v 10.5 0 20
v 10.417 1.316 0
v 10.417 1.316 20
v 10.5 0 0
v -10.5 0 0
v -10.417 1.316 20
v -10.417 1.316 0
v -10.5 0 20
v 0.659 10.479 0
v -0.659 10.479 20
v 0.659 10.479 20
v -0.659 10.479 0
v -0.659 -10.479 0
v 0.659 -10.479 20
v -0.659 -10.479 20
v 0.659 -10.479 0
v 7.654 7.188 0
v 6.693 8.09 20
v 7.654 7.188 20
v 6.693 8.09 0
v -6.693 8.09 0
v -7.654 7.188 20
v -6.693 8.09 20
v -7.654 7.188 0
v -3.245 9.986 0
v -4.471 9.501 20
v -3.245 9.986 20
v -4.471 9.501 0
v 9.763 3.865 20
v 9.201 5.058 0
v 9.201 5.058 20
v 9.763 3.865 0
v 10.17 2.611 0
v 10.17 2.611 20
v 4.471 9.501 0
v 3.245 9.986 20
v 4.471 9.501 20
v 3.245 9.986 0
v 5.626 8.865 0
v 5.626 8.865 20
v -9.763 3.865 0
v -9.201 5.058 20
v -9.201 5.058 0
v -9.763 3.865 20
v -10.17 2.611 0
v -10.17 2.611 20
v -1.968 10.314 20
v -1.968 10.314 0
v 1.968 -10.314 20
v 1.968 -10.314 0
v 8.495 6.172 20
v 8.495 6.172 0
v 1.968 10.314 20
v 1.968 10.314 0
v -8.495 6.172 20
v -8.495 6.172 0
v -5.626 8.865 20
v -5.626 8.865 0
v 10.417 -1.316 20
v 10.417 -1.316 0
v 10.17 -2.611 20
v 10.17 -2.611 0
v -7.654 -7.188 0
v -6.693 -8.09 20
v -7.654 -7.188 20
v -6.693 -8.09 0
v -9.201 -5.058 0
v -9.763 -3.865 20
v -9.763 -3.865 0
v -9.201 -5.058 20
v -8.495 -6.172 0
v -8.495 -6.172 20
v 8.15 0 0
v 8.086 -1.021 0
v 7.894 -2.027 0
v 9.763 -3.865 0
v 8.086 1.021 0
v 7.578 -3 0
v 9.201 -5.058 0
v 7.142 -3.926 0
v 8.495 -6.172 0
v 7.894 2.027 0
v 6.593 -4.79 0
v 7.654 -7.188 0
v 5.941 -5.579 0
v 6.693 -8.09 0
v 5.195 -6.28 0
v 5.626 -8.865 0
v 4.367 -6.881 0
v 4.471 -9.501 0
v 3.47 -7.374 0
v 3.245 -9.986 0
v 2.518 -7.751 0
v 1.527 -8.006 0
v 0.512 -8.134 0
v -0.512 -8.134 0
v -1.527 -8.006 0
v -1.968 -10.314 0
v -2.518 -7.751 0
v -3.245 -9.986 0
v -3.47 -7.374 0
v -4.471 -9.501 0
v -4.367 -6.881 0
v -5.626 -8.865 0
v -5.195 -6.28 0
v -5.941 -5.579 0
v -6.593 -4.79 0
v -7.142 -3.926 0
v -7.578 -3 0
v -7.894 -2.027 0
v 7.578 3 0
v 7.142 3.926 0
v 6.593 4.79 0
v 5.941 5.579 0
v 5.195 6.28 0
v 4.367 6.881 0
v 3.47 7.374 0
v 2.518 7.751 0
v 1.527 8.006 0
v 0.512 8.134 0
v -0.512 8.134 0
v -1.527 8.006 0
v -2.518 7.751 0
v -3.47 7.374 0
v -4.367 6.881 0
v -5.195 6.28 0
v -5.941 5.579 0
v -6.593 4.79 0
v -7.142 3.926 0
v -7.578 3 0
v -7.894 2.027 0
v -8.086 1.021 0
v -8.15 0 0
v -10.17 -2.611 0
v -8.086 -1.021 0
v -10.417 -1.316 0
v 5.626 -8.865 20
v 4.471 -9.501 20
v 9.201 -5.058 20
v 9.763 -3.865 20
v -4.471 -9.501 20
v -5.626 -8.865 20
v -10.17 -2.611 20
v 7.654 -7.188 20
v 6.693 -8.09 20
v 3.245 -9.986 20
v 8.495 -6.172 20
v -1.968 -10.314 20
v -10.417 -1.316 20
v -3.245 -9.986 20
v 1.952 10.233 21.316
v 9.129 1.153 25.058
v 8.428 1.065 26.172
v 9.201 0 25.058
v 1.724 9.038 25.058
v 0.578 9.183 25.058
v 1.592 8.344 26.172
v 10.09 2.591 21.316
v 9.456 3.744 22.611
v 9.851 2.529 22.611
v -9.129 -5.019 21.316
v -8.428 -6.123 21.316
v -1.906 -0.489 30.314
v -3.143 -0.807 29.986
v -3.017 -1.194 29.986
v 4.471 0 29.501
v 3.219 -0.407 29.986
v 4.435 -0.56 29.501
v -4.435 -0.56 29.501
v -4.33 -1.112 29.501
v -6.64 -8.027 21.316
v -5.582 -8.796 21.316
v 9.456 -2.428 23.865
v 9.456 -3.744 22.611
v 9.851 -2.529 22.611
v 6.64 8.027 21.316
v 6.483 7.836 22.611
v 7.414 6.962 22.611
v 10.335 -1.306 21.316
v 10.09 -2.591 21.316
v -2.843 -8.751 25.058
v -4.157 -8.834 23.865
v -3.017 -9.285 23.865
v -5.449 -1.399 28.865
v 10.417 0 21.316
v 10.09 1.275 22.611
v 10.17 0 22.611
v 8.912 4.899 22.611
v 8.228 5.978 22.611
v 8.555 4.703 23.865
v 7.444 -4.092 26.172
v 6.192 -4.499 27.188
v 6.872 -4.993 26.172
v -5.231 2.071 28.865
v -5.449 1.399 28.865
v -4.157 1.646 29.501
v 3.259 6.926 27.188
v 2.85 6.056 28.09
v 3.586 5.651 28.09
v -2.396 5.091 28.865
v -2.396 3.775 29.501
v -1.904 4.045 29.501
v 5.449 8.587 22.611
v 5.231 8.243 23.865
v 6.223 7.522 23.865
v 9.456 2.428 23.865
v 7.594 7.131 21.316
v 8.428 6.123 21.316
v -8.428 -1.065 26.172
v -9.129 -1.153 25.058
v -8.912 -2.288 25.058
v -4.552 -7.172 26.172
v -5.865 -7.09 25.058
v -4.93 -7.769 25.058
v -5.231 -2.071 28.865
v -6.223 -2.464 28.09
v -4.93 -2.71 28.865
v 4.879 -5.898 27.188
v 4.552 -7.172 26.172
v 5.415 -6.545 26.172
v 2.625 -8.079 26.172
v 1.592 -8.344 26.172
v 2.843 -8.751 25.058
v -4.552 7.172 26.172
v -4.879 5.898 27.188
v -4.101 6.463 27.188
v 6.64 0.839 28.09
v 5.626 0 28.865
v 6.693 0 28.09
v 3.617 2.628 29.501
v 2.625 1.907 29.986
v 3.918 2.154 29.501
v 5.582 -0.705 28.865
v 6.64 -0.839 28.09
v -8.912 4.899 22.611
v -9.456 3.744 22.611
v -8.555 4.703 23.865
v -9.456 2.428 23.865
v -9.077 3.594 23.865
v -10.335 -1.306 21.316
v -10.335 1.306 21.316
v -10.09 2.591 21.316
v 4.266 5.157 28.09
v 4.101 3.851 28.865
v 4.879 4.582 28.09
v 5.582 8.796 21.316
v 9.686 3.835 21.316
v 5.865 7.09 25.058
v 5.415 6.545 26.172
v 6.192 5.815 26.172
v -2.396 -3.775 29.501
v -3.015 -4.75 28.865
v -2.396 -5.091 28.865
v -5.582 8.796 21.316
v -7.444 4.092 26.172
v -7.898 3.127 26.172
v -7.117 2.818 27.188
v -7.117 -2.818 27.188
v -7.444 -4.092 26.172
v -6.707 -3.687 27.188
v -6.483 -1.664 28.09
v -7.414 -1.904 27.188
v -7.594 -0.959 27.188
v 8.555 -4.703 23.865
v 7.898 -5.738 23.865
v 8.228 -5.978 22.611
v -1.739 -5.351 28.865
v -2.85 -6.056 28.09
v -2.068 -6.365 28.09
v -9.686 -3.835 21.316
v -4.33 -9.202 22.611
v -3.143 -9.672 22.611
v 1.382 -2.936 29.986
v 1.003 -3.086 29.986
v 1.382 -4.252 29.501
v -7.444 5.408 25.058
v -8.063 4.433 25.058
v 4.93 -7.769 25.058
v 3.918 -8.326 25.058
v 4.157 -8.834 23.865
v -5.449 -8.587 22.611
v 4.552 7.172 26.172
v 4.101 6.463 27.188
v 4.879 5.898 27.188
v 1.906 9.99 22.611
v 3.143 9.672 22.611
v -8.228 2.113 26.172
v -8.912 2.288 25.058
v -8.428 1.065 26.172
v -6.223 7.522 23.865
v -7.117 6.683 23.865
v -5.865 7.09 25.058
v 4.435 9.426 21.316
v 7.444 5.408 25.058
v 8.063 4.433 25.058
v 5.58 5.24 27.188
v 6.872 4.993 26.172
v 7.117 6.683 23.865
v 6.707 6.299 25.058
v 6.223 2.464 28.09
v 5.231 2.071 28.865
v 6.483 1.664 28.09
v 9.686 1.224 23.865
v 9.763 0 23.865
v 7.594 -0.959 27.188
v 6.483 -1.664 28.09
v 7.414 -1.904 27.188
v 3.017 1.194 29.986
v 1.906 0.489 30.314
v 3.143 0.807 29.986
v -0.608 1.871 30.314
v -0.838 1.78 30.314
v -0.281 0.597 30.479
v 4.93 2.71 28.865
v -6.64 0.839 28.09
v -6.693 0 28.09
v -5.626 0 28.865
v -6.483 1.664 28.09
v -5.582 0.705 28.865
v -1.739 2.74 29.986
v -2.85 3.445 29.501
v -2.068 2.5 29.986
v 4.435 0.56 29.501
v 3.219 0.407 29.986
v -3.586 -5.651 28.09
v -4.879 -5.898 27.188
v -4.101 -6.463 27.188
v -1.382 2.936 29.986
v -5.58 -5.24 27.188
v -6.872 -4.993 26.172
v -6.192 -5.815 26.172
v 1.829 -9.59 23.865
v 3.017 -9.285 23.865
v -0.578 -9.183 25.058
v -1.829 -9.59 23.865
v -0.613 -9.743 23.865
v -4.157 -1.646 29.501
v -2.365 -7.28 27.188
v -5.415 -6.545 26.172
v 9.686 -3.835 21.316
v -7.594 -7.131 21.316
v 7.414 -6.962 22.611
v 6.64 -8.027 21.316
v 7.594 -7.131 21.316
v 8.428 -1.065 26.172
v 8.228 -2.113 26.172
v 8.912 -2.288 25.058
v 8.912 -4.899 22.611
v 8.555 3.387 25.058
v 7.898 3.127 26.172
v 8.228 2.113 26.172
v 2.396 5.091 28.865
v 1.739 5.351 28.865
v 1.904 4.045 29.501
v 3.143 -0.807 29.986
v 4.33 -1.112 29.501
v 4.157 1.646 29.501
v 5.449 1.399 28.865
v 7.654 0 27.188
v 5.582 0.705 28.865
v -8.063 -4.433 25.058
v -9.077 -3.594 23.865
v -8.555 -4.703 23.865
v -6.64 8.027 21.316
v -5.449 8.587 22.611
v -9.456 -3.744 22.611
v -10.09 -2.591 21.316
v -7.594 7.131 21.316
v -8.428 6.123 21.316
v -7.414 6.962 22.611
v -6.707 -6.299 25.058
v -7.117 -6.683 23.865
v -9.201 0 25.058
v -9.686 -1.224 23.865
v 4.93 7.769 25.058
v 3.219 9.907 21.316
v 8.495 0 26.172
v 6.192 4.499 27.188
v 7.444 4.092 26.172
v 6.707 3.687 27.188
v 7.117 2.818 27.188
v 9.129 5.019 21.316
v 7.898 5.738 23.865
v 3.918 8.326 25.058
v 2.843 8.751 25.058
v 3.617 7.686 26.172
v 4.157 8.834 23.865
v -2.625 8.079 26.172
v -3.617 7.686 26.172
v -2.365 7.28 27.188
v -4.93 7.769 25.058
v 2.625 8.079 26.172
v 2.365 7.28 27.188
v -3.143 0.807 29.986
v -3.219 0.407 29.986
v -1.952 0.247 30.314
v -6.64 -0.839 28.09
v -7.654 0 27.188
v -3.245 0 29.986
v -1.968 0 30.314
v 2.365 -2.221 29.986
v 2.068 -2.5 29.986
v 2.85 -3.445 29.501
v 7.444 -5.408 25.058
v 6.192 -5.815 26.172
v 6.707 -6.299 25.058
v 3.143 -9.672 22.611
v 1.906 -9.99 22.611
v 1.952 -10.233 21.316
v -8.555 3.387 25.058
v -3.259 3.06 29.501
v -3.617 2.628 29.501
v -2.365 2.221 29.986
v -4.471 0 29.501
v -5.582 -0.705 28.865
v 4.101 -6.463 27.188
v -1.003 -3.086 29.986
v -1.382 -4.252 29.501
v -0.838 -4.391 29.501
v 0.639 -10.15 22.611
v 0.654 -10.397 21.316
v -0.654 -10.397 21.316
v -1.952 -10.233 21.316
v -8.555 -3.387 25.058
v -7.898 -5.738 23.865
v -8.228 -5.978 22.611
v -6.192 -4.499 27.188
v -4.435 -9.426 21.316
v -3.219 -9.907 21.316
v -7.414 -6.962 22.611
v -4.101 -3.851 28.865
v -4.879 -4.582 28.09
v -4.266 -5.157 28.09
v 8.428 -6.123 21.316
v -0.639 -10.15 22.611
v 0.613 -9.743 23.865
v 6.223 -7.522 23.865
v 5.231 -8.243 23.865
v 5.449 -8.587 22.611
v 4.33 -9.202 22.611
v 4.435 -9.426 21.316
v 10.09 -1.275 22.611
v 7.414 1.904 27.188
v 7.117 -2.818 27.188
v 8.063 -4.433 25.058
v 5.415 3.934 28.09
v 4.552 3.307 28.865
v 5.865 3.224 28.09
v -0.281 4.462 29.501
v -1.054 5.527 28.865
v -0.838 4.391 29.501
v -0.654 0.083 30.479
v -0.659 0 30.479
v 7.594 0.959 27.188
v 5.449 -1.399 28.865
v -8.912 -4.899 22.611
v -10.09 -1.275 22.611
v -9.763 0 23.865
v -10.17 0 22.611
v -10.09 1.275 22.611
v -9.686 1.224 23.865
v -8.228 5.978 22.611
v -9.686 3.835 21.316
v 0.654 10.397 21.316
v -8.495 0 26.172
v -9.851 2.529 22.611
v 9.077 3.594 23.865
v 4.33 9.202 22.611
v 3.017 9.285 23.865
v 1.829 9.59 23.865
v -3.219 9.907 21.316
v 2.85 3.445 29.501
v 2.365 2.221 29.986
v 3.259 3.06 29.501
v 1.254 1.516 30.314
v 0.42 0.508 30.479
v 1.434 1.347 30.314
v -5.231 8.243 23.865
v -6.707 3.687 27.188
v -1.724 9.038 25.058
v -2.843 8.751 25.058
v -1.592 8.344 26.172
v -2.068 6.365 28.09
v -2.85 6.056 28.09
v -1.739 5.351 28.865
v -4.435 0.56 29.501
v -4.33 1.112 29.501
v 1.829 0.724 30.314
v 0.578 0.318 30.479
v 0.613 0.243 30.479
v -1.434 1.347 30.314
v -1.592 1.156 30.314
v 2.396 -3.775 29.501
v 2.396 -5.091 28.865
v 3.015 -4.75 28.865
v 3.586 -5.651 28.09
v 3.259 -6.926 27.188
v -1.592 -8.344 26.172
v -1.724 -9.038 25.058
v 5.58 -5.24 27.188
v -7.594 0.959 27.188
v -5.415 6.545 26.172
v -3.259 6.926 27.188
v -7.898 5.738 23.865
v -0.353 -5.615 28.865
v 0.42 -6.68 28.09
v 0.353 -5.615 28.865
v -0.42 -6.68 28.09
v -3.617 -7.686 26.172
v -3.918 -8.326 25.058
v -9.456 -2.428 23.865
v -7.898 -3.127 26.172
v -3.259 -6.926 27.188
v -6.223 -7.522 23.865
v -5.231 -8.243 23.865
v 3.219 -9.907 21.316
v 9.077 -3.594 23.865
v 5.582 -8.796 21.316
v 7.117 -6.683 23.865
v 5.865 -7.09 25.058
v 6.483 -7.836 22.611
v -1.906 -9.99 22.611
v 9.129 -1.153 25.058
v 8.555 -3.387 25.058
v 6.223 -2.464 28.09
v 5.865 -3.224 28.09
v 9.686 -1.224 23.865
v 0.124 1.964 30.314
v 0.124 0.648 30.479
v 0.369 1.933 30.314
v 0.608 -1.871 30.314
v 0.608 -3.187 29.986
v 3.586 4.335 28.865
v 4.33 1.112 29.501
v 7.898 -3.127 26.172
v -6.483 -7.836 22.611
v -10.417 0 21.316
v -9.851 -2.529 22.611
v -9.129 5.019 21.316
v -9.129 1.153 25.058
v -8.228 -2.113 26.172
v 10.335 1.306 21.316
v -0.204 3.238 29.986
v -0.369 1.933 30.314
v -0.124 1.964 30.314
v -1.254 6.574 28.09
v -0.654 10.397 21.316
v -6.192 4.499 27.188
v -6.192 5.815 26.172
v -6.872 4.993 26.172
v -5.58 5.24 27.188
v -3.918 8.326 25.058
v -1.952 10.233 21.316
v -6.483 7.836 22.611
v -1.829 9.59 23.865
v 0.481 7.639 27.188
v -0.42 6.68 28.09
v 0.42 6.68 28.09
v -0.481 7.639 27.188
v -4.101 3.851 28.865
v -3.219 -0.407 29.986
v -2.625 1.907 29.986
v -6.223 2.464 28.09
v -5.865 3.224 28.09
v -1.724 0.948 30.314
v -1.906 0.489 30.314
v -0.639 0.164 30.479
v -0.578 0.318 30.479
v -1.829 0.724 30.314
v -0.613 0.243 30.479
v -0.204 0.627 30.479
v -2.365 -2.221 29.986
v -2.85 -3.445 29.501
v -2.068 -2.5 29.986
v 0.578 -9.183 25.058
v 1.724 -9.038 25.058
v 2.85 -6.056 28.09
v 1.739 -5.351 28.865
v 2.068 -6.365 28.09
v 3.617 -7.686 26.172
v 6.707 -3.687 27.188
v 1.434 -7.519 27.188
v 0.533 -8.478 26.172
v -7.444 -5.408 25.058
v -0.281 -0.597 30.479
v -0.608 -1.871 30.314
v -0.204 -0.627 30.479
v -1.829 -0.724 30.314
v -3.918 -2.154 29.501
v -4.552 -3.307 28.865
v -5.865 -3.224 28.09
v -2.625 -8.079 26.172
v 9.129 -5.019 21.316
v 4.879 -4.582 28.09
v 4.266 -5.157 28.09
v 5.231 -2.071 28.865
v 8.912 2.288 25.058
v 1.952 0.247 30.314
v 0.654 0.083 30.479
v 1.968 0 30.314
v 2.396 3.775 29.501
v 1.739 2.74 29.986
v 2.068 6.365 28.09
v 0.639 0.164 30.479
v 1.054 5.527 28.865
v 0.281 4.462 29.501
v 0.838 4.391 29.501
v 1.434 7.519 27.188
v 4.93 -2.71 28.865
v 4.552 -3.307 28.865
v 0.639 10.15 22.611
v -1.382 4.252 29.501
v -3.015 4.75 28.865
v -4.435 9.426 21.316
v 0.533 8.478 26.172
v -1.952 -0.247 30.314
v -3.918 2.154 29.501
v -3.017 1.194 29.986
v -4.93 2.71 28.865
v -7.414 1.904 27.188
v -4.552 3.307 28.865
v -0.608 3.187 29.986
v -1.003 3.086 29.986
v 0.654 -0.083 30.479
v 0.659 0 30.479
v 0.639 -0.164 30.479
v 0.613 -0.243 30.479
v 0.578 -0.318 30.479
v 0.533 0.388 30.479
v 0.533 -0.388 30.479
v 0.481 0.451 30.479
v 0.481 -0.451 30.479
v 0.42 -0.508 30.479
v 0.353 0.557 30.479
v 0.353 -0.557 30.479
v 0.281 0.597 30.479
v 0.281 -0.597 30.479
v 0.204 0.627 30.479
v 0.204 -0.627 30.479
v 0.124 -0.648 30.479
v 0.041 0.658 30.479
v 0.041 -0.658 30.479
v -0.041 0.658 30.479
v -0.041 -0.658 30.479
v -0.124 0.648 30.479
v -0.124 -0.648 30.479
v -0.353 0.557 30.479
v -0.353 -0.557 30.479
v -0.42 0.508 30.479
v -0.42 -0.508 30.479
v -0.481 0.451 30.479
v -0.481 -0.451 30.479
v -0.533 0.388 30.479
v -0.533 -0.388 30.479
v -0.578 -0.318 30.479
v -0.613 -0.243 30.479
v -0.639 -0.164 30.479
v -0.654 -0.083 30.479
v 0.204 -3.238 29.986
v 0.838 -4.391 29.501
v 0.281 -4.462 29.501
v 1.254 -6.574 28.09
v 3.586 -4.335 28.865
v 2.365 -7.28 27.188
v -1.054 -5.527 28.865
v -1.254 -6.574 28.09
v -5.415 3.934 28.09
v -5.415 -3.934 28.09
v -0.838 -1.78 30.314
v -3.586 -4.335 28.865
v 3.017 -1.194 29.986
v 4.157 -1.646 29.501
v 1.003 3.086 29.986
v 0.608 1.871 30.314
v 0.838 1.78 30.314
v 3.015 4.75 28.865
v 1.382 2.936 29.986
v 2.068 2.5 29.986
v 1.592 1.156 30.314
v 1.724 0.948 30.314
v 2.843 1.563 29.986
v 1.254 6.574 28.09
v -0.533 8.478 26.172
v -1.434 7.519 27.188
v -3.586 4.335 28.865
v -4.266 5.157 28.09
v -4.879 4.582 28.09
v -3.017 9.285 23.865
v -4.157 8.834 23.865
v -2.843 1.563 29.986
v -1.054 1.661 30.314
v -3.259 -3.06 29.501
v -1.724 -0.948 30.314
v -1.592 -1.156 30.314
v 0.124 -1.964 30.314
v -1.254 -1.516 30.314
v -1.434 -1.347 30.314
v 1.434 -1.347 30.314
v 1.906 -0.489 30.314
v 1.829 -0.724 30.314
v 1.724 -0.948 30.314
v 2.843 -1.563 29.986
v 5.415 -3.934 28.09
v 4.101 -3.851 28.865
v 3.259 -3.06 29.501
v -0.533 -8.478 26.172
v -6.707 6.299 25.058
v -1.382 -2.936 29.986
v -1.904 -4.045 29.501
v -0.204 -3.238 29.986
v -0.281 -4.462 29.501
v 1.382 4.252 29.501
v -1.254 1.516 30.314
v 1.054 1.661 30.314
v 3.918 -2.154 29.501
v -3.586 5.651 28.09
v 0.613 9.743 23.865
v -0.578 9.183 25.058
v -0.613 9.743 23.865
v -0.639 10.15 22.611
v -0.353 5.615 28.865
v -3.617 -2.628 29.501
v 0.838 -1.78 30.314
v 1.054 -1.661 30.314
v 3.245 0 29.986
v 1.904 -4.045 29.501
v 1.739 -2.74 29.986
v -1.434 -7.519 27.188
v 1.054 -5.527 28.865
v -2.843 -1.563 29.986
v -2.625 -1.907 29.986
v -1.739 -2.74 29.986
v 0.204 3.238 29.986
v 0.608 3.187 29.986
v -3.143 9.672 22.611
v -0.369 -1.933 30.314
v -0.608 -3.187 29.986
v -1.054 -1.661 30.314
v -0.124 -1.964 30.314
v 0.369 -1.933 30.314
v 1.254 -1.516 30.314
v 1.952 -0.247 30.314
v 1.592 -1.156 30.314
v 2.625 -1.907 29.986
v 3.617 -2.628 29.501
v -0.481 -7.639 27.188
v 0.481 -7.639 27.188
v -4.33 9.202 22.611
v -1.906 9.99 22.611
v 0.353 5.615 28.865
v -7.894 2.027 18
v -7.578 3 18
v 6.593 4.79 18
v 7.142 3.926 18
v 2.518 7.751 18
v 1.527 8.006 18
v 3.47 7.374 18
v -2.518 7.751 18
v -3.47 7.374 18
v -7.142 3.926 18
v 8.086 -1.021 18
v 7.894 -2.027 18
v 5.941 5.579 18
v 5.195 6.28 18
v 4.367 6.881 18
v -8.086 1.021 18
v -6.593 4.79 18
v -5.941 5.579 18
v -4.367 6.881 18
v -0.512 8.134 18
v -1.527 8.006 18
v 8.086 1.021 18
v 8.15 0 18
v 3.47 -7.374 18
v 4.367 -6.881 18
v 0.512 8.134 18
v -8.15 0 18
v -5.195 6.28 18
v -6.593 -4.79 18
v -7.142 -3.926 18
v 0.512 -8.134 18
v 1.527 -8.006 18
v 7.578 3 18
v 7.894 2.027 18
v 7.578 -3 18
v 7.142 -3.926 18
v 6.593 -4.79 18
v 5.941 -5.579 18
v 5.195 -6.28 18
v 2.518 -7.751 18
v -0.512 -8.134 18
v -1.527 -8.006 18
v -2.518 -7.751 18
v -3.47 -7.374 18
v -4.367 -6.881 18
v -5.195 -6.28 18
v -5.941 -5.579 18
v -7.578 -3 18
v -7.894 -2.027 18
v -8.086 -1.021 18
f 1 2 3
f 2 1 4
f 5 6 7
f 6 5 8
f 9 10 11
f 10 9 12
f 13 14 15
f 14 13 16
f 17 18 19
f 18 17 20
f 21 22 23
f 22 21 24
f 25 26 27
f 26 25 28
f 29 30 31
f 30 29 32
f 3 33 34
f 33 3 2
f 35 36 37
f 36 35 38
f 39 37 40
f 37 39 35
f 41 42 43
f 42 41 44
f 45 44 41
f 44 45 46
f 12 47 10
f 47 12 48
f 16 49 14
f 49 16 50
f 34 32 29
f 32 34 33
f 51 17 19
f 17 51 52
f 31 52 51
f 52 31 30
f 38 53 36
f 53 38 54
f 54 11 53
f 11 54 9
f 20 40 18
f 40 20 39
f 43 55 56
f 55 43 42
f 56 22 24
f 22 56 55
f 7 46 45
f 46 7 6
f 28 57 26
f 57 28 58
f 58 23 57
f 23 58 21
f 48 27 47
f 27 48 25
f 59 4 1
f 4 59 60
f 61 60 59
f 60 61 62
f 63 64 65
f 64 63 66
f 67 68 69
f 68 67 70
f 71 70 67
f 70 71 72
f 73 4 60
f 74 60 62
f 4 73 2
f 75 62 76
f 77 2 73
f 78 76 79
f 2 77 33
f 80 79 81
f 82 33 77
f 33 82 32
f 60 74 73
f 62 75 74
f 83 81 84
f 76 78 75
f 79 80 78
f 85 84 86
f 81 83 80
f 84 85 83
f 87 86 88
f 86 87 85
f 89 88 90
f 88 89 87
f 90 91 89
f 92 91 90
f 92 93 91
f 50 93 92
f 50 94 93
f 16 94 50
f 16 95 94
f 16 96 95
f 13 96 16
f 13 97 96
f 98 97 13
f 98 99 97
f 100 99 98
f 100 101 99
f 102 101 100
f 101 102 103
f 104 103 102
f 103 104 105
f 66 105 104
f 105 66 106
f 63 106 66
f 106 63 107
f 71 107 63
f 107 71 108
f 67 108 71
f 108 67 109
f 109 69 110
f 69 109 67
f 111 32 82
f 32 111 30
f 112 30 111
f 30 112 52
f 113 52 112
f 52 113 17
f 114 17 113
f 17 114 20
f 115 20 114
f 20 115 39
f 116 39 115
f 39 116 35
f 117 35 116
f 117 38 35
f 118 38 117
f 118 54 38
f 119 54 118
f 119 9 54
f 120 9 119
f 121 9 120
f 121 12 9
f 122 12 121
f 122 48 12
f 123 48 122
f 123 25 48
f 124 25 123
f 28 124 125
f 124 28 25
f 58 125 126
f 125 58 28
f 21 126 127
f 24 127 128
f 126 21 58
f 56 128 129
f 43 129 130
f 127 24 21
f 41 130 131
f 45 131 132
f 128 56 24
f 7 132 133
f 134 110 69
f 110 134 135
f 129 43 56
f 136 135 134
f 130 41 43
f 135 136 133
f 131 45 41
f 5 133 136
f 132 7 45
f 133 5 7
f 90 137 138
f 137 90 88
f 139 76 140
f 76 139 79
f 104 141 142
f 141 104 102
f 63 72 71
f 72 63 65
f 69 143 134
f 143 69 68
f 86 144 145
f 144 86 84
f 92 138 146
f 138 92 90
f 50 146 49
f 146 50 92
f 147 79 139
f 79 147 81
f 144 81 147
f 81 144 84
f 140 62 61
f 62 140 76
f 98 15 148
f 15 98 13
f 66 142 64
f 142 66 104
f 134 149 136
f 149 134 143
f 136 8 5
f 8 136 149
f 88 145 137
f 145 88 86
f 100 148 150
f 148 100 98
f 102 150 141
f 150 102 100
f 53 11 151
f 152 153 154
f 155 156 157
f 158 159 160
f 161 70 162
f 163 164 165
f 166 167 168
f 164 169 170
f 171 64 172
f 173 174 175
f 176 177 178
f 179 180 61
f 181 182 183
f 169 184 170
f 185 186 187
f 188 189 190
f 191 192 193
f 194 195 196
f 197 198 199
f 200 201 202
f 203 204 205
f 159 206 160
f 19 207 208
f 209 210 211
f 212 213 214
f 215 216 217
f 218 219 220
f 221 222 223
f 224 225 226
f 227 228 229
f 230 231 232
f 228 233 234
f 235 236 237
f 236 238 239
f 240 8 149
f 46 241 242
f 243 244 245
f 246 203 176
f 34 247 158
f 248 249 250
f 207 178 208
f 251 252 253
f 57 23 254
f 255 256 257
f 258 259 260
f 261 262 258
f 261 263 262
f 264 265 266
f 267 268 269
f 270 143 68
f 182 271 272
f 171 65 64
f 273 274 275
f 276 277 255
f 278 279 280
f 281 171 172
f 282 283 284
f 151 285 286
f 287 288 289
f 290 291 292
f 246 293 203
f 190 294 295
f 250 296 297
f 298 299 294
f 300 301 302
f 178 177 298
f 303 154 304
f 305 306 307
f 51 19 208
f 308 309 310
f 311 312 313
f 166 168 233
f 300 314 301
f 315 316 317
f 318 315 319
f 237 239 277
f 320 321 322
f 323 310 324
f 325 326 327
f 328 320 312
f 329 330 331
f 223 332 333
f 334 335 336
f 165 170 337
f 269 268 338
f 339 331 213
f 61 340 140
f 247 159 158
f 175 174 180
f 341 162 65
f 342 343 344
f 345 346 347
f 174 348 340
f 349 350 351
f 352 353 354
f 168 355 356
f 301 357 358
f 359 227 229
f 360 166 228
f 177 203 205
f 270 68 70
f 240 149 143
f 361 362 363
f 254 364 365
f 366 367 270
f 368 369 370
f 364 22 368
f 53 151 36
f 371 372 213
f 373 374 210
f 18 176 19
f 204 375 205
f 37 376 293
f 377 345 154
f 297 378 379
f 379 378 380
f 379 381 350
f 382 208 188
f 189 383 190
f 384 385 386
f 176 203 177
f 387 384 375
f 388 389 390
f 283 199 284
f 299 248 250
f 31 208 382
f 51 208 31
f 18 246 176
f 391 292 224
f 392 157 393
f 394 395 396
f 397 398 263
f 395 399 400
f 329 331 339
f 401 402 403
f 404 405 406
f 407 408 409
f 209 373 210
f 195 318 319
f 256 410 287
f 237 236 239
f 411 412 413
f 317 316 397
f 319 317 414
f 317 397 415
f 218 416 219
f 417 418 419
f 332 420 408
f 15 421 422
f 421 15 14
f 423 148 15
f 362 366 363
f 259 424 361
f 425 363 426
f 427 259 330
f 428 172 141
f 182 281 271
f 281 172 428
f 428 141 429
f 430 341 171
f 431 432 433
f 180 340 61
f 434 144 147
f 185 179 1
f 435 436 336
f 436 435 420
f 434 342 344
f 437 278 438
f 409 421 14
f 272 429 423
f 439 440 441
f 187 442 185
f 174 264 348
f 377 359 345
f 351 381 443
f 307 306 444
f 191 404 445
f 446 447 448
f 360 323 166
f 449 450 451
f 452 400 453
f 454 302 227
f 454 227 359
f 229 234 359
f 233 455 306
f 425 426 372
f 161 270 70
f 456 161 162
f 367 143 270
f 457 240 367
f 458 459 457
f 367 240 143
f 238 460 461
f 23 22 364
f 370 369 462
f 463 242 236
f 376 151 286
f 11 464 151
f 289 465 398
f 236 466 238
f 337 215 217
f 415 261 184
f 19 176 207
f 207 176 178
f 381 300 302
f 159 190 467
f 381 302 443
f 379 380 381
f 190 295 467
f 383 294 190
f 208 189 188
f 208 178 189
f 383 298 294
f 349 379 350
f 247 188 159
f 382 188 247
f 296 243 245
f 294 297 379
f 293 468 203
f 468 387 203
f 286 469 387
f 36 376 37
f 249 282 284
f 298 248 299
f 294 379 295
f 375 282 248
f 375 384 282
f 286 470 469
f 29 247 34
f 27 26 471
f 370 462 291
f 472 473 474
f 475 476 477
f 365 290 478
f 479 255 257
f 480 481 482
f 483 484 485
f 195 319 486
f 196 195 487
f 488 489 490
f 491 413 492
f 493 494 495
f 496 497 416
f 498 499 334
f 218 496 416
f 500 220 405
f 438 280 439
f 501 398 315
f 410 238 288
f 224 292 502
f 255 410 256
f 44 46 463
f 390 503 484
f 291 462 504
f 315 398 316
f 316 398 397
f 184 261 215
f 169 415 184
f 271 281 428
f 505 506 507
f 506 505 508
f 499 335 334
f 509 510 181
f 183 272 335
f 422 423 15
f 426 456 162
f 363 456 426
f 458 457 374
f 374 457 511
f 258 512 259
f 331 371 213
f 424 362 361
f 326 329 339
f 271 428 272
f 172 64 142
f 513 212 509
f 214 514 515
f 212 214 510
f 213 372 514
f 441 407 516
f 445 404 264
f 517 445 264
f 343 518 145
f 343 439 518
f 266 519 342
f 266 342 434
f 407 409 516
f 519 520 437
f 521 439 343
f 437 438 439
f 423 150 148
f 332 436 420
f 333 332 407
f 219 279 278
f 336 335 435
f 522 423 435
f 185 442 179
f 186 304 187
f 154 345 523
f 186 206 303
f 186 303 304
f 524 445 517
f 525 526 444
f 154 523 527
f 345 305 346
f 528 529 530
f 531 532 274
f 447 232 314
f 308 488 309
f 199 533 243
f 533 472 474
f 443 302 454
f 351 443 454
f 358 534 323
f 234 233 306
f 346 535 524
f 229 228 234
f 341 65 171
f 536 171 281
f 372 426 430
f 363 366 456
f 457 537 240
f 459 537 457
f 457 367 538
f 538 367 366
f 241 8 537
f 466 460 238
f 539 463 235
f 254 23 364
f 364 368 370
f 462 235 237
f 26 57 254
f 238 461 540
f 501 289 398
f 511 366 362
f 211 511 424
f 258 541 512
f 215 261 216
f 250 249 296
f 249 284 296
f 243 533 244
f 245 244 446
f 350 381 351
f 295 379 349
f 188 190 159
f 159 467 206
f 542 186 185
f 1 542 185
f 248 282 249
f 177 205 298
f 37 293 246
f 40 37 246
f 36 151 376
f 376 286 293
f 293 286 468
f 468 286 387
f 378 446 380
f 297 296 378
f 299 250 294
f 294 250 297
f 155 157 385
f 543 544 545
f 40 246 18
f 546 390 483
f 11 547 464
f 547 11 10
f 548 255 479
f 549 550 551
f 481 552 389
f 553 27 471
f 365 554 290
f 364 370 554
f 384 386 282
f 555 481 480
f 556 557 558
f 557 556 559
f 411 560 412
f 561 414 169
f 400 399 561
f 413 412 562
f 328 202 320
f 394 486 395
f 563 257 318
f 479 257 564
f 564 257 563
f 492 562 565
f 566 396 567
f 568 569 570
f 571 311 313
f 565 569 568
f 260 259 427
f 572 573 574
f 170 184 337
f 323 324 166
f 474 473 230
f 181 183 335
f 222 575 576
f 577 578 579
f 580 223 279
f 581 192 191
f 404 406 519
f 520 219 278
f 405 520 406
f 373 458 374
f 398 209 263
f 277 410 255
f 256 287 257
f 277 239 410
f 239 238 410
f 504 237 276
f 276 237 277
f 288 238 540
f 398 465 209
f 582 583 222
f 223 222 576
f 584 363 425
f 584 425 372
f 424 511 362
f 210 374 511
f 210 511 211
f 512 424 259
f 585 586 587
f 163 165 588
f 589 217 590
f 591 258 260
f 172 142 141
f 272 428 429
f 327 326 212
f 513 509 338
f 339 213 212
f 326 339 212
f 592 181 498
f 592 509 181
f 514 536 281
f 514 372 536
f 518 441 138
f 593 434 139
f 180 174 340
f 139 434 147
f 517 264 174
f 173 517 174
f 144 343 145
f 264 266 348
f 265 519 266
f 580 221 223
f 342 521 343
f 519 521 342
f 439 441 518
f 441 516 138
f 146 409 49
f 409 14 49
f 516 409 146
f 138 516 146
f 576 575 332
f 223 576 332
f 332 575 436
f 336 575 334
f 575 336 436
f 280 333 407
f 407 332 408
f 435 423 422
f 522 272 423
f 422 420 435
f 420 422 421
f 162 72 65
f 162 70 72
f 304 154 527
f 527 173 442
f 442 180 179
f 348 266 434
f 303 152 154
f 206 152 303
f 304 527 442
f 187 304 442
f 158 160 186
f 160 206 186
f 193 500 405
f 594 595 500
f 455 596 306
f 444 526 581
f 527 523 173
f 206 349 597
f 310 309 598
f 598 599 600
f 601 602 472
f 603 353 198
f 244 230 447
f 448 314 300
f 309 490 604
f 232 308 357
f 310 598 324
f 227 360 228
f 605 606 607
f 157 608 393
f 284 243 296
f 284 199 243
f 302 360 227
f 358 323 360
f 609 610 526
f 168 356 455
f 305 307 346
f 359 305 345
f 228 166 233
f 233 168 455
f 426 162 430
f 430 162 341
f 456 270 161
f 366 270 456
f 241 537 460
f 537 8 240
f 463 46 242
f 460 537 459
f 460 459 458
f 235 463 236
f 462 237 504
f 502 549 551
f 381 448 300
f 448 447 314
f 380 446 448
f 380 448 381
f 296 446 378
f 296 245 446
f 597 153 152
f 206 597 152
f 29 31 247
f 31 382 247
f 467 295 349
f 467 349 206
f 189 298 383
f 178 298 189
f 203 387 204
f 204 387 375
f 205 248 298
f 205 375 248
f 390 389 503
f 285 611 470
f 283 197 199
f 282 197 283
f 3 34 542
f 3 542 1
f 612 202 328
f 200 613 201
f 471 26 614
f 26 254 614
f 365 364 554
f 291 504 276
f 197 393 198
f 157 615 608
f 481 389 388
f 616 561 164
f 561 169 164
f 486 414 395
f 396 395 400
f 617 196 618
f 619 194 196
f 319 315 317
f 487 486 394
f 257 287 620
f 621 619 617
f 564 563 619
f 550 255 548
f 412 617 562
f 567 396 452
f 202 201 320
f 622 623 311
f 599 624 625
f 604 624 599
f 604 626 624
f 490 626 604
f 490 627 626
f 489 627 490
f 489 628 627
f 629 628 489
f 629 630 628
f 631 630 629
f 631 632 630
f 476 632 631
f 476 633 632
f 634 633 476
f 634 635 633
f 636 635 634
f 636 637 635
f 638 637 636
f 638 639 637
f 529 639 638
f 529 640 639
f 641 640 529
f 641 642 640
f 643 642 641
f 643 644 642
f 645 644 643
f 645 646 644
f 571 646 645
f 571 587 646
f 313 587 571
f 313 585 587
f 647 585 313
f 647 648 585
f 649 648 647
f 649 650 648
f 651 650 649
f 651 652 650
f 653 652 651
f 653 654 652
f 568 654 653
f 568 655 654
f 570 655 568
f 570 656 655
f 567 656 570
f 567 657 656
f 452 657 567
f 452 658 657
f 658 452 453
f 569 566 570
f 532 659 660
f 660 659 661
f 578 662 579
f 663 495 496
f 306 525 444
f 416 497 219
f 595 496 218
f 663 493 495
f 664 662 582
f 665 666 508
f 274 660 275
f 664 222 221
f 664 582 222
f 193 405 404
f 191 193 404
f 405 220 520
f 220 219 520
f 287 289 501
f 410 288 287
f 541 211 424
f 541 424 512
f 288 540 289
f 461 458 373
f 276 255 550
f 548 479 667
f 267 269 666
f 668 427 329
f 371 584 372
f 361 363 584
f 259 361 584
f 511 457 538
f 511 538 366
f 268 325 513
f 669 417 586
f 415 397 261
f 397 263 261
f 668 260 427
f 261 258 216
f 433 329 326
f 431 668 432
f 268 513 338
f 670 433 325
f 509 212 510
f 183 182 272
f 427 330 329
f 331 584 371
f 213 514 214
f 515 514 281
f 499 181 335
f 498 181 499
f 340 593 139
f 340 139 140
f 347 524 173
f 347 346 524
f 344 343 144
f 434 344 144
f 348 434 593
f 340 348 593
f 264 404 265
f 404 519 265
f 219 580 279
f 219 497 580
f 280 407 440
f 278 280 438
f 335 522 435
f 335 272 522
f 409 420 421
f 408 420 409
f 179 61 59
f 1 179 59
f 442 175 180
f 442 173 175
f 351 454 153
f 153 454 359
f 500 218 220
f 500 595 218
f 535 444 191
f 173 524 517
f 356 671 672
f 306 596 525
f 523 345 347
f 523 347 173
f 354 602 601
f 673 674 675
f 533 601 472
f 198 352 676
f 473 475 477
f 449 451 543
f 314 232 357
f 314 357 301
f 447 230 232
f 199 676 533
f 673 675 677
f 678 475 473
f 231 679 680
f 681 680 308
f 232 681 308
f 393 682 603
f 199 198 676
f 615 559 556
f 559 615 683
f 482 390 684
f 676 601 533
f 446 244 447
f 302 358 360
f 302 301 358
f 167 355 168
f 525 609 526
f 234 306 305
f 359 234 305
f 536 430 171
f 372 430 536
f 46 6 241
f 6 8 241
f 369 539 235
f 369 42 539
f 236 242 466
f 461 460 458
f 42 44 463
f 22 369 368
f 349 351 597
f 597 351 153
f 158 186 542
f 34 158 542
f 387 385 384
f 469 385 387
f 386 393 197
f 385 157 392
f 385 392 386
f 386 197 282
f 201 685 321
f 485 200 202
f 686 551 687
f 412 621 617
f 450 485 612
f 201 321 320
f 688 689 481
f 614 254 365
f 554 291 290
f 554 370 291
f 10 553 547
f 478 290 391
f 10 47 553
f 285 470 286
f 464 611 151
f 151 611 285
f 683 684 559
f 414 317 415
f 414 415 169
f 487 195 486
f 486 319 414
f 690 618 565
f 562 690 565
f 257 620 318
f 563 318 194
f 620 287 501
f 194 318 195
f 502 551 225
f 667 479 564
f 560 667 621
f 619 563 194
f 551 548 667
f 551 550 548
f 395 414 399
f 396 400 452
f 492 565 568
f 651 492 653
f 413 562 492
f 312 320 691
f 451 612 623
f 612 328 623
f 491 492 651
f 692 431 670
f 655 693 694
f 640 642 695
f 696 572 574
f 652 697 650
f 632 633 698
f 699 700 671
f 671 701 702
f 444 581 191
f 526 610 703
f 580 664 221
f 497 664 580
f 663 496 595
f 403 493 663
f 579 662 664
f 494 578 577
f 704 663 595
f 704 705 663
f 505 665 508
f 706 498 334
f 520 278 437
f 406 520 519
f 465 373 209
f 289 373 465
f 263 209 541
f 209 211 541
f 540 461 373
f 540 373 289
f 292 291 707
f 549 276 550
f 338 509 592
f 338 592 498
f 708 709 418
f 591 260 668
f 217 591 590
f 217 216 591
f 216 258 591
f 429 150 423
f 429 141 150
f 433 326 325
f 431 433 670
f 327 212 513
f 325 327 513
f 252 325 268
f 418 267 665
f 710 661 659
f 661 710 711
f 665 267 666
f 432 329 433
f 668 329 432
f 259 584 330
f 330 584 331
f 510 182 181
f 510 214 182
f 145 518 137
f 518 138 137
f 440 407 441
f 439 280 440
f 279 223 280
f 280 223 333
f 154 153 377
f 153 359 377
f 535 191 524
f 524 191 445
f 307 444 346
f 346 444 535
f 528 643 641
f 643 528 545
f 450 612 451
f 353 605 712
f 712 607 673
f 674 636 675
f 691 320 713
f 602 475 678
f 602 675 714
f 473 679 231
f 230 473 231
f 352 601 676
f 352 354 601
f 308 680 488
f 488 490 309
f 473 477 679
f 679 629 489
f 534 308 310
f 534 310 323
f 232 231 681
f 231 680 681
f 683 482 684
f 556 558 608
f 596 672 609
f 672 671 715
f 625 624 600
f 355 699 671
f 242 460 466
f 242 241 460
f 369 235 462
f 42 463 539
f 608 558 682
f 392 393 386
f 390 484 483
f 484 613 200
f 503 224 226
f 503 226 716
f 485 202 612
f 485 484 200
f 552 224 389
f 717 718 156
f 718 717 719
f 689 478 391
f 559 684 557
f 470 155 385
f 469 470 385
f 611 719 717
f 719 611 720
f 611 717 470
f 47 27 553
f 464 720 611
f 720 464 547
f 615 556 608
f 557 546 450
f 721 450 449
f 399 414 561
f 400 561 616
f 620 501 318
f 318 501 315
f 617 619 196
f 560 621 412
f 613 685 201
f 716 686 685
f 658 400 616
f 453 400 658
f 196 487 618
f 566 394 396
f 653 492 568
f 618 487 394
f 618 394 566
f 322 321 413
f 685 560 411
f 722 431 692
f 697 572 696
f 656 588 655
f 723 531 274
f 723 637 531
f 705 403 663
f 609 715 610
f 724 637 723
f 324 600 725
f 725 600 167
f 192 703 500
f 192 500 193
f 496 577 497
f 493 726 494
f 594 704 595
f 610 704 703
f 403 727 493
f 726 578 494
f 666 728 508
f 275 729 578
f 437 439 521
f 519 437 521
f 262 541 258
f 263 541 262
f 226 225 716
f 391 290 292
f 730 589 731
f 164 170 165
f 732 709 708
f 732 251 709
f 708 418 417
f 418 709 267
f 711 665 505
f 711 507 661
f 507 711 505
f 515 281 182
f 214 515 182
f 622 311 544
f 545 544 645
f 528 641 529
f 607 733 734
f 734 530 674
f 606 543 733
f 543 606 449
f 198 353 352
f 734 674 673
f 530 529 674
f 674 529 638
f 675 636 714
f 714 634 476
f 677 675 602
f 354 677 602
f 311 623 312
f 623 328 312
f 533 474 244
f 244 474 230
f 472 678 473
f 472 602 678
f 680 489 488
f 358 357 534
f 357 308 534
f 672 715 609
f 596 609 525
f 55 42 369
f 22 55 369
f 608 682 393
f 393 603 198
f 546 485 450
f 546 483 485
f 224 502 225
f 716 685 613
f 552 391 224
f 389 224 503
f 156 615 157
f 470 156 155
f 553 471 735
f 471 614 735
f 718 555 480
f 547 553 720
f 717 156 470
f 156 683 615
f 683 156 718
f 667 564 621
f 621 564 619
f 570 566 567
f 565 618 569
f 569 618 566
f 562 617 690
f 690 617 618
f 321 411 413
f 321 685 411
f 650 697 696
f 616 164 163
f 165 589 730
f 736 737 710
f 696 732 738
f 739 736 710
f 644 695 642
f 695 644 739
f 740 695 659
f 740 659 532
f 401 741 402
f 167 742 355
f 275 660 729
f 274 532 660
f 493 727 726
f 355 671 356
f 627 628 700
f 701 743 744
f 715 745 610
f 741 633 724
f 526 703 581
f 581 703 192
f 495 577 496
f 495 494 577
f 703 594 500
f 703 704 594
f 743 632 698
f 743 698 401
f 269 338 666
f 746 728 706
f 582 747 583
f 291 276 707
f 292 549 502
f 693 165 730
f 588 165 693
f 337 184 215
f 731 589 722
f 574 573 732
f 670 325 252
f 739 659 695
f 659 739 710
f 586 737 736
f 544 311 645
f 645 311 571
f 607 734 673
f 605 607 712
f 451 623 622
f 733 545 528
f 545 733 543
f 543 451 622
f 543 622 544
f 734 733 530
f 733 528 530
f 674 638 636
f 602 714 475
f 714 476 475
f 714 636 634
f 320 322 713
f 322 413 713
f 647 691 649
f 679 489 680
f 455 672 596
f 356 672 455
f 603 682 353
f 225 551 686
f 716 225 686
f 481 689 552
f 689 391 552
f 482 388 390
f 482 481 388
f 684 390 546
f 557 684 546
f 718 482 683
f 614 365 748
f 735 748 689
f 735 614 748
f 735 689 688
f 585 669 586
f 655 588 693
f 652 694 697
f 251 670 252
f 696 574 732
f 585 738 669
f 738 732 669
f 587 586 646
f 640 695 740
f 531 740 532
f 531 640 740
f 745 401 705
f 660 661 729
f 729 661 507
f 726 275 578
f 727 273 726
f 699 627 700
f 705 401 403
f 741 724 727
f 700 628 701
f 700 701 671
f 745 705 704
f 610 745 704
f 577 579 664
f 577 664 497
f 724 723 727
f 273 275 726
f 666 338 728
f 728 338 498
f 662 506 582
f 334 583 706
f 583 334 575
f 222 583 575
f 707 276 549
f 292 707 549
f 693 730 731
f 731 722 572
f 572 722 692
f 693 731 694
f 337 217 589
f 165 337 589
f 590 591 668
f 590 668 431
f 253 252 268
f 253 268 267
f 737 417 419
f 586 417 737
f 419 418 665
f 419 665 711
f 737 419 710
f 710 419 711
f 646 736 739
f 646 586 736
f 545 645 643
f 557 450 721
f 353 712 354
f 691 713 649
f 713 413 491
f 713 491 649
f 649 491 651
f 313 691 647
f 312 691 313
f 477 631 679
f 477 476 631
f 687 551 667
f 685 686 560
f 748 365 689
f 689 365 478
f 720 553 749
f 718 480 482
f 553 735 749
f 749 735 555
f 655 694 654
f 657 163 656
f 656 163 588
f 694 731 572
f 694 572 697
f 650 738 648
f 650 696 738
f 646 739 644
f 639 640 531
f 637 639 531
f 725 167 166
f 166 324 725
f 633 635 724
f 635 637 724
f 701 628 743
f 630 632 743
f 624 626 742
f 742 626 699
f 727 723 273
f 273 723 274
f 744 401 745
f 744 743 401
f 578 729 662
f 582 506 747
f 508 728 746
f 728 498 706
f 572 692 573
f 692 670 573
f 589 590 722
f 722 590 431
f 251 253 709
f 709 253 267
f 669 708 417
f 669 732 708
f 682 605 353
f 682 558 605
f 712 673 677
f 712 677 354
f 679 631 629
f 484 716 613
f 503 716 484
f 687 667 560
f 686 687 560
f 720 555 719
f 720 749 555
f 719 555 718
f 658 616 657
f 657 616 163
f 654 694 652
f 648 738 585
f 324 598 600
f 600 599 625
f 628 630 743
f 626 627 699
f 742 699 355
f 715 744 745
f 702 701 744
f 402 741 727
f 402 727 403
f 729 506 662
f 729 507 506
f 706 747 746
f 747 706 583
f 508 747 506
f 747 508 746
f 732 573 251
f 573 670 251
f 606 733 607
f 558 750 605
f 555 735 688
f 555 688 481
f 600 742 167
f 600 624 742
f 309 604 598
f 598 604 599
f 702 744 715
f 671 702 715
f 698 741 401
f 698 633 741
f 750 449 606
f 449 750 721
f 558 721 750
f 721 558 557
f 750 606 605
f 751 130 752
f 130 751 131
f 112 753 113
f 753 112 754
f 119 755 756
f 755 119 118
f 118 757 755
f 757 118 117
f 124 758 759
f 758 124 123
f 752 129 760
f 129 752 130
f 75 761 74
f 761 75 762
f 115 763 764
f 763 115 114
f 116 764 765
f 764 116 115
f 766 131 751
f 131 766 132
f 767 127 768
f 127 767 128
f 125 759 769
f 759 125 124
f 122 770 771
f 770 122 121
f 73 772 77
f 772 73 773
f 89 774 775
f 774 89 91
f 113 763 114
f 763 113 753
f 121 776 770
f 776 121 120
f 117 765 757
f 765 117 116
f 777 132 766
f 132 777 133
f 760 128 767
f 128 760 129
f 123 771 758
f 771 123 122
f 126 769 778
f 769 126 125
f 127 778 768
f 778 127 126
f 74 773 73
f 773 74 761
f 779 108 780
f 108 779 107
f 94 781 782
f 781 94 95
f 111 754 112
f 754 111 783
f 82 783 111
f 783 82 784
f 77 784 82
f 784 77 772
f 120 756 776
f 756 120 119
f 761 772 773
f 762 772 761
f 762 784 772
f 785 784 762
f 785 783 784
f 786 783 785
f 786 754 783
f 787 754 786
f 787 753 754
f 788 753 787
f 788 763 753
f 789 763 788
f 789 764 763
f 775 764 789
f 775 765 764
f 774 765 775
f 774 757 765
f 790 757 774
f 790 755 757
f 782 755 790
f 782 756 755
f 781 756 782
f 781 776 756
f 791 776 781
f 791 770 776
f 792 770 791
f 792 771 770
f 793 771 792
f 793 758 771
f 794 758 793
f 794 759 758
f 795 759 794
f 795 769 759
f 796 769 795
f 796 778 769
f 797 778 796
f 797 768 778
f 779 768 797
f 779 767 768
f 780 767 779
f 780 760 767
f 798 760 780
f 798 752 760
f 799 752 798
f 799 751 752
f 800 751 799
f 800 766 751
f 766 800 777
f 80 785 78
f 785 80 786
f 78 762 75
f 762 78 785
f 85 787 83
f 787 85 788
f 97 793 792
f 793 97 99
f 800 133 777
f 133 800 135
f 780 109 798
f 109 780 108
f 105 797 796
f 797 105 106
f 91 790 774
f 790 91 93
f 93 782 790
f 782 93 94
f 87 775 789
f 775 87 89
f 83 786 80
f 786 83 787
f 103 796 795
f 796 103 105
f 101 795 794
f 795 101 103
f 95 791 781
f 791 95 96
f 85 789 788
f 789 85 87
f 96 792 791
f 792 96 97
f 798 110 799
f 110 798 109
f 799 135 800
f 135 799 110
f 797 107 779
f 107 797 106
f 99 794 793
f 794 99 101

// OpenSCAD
diameter_out = 21 / 2;
diameter_in = 16.3 / 2;
height = 20;
inner_height = 2;


$fn = 50;

difference() {
    union() {
        cylinder(height, diameter_out, diameter_out);
        translate([0, 0, height]) {
            sphere(diameter_out);
        }
    }
    
    cylinder(height - inner_height, diameter_in, diameter_in);
}
